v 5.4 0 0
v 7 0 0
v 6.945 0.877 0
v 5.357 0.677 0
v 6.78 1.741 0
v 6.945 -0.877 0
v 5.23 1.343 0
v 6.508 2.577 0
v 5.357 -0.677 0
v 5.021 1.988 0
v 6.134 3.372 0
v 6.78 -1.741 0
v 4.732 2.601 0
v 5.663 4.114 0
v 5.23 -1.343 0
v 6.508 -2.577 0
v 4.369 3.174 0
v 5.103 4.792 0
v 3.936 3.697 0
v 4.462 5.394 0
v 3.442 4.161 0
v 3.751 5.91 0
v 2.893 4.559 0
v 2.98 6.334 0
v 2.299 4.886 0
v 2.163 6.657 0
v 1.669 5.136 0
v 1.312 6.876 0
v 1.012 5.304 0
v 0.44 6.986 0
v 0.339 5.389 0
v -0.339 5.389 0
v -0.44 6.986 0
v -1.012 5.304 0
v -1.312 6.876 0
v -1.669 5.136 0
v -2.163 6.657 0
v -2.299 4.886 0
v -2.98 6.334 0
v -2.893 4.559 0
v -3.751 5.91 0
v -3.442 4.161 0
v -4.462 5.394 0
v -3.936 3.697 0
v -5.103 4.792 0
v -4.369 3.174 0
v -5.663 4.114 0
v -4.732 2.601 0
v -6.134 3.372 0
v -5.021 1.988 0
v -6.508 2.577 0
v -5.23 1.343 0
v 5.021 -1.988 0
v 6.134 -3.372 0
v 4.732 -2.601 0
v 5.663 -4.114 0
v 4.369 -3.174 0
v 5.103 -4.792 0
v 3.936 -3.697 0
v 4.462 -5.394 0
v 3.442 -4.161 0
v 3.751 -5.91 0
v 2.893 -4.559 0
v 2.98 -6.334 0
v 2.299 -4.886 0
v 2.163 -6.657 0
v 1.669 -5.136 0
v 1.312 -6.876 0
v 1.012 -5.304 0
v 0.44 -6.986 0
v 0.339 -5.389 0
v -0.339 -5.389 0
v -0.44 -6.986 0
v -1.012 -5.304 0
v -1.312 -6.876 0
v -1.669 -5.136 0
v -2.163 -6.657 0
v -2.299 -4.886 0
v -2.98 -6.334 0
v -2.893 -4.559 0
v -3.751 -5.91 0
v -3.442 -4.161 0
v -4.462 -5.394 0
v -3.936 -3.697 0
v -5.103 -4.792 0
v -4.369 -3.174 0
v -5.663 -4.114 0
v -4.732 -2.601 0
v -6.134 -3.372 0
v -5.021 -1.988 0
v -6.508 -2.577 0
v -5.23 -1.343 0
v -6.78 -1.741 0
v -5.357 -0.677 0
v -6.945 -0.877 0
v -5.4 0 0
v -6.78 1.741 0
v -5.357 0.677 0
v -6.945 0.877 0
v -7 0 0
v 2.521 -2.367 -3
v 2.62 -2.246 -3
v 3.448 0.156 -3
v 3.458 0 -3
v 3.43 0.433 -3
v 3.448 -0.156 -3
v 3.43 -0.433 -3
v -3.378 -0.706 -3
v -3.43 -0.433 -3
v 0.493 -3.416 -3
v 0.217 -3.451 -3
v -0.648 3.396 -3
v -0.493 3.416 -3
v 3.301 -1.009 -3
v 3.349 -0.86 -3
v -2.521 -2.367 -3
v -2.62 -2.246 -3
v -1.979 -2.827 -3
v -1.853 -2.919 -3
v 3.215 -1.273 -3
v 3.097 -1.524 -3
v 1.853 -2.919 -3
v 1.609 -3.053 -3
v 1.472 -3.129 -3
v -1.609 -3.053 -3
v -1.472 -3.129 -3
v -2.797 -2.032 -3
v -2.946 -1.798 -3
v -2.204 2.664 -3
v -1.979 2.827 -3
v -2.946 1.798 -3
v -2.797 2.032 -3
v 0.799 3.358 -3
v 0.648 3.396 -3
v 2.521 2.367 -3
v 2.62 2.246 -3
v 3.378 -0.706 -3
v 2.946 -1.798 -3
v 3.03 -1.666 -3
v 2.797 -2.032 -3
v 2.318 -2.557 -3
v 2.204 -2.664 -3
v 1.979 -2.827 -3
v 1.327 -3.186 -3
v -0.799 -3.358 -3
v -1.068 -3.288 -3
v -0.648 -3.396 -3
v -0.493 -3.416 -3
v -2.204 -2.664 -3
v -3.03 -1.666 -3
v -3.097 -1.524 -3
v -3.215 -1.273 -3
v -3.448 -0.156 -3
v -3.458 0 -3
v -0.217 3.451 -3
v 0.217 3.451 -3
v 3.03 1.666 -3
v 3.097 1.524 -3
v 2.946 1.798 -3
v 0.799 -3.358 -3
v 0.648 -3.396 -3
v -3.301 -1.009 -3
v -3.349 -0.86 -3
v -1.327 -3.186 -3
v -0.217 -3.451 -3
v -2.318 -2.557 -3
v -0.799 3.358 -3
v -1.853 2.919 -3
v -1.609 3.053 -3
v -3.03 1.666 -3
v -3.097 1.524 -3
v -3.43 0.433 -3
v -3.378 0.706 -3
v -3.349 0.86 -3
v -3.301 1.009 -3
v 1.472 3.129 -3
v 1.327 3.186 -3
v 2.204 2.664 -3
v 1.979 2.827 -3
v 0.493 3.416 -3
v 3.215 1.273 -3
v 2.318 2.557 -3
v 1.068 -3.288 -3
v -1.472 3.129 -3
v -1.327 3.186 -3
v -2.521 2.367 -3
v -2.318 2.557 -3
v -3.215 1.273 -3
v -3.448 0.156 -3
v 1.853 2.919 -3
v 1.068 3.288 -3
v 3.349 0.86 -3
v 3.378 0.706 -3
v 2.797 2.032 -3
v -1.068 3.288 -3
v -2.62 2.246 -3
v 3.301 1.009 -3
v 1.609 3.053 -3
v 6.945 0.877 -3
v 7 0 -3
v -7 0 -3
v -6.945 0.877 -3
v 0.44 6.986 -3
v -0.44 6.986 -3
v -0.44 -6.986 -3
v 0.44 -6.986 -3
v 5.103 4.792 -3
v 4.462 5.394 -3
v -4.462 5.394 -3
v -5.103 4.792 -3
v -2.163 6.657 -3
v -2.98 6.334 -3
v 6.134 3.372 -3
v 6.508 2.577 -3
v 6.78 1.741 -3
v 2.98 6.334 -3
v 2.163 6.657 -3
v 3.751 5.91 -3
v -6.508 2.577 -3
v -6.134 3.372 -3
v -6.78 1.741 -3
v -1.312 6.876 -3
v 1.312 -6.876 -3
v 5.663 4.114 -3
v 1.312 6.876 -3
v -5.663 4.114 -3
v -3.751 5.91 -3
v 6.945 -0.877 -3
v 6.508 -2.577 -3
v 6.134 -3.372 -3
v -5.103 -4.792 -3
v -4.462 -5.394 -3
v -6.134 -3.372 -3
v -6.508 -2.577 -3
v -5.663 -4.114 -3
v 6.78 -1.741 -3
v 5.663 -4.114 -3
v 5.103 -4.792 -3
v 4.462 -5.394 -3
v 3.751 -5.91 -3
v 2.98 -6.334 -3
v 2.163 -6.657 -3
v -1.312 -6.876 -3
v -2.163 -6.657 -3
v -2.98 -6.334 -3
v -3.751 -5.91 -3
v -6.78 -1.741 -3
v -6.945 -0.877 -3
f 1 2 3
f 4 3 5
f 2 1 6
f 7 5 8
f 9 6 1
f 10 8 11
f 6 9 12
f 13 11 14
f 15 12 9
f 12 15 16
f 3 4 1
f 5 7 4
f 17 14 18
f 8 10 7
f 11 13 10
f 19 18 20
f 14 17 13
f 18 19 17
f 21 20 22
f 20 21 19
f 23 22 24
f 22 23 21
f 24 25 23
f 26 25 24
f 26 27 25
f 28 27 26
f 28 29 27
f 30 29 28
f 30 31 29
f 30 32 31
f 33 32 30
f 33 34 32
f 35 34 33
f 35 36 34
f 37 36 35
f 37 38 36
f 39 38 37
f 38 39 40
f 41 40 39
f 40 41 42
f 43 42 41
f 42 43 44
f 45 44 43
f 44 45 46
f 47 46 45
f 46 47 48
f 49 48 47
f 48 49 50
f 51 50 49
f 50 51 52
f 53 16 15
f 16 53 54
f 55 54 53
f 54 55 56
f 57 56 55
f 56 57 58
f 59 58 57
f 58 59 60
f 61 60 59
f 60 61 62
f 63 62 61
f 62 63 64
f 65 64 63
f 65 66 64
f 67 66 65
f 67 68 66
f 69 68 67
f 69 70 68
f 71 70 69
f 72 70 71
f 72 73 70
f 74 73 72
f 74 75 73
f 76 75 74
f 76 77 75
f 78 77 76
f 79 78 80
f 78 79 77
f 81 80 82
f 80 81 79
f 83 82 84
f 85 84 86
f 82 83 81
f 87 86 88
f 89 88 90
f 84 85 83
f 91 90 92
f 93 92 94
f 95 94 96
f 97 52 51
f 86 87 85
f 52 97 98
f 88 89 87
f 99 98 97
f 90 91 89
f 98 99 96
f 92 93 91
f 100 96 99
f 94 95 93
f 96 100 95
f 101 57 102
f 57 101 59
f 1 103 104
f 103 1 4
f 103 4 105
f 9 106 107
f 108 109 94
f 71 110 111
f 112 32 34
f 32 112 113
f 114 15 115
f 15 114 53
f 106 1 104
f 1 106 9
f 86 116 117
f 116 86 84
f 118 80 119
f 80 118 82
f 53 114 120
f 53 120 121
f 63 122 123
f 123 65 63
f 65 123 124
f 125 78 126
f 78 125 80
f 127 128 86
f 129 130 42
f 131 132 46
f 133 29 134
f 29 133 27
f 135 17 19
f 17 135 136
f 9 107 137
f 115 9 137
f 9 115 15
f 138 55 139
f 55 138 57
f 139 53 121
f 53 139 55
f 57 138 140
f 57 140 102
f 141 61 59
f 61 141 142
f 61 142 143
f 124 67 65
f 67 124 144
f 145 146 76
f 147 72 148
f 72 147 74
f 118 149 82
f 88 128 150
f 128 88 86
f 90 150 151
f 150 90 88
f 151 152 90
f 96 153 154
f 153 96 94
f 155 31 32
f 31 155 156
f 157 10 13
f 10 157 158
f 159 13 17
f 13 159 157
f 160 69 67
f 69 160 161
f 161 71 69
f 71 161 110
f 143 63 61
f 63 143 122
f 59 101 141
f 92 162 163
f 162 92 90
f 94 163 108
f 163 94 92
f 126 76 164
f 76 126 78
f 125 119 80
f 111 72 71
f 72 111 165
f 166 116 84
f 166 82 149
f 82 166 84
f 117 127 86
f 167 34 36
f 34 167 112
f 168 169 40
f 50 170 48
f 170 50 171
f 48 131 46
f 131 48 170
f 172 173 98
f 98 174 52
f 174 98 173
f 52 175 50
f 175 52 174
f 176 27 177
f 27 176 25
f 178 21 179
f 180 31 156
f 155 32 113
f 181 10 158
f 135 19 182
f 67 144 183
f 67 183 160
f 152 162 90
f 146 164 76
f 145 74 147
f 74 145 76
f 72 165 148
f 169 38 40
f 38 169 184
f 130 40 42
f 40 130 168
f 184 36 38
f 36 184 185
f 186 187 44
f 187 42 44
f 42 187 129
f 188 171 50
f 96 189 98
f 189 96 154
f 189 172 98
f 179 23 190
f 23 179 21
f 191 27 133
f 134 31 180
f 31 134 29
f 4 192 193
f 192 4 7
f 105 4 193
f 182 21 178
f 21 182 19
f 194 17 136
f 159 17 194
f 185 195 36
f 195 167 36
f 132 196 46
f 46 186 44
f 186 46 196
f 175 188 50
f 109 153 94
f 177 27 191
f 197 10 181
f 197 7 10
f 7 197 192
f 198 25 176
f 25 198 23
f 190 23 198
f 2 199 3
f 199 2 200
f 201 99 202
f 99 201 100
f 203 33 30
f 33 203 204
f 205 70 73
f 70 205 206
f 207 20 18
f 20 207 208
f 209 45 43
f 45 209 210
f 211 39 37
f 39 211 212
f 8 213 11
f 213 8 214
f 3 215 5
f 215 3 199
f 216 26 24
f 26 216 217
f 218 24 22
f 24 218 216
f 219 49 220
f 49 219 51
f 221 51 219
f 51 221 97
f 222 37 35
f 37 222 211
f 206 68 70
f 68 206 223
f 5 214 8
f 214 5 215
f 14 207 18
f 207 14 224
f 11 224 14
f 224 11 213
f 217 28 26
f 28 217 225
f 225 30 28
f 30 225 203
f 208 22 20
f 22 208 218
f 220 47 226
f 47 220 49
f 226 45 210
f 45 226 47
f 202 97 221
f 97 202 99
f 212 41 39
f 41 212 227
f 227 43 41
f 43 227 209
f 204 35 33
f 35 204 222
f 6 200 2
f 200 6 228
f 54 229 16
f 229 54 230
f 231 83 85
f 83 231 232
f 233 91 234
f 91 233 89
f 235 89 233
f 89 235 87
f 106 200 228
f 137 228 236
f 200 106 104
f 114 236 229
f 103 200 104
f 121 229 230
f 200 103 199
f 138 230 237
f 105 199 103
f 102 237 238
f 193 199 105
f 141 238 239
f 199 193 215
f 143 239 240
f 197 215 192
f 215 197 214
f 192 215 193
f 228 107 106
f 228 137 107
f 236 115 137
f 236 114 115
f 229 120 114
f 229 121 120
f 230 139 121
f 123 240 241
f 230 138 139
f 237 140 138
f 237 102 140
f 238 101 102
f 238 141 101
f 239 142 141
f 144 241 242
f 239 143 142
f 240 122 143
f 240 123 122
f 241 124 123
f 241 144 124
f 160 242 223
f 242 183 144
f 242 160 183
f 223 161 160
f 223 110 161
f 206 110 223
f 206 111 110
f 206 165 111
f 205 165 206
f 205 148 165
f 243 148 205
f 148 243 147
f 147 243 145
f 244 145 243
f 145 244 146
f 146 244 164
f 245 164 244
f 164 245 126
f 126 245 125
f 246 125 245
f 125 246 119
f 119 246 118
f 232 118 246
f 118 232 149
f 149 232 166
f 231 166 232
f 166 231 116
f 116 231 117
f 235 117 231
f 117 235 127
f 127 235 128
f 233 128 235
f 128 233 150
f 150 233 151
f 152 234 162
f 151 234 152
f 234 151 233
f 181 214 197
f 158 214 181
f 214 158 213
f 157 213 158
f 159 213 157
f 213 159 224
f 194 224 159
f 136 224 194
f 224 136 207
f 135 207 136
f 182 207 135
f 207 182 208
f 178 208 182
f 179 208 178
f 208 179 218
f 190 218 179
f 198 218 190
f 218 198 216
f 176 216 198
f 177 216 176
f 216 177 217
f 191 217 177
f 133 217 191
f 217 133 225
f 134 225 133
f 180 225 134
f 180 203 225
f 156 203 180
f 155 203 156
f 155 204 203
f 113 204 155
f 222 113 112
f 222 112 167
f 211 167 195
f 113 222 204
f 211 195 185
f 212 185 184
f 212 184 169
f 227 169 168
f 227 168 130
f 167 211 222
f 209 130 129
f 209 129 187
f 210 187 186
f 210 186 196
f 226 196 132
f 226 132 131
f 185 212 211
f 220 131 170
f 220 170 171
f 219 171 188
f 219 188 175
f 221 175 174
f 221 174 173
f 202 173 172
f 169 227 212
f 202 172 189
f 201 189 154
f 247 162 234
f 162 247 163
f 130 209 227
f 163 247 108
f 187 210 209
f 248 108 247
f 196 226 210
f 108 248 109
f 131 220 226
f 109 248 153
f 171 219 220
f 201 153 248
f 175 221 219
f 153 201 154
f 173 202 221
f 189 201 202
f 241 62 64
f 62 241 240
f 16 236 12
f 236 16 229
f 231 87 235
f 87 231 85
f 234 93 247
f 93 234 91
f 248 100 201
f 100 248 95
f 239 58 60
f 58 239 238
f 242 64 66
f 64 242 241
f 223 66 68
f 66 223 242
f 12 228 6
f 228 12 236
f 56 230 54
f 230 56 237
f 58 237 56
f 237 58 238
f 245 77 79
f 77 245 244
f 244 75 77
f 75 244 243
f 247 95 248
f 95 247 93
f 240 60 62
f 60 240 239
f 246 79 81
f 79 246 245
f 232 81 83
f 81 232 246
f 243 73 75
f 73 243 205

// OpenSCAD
$fn = 50;


difference() {
	union() {
		translate(v = [0, 0, -3.0000000000]) {
			cylinder(h = 3, r = 7.0000000000);
		}
	}
	union() {
		translate(v = [0, 0, 0]) {
			rotate(a = [0, 0, 0]) {
				difference() {
					union() {
						translate(v = [0, 0, -6.0000000000]) {
							cylinder(h = 6, r = 2.6000000000);
						}
						translate(v = [0, 0, -3.9000000000]) {
							cylinder(h = 3.9000000000, r1 = 2.8750000000, r2 = 5.4000000000);
						}
						translate(v = [0, 0, -6.0000000000]) {
							cylinder(h = 6, r = 2.8750000000);
						}
						translate(v = [0, 0, -6.0000000000]) {
							cylinder(h = 6, r = 2.6000000000);
						}
					}
					union();
				}
			}
		}
	}
}
